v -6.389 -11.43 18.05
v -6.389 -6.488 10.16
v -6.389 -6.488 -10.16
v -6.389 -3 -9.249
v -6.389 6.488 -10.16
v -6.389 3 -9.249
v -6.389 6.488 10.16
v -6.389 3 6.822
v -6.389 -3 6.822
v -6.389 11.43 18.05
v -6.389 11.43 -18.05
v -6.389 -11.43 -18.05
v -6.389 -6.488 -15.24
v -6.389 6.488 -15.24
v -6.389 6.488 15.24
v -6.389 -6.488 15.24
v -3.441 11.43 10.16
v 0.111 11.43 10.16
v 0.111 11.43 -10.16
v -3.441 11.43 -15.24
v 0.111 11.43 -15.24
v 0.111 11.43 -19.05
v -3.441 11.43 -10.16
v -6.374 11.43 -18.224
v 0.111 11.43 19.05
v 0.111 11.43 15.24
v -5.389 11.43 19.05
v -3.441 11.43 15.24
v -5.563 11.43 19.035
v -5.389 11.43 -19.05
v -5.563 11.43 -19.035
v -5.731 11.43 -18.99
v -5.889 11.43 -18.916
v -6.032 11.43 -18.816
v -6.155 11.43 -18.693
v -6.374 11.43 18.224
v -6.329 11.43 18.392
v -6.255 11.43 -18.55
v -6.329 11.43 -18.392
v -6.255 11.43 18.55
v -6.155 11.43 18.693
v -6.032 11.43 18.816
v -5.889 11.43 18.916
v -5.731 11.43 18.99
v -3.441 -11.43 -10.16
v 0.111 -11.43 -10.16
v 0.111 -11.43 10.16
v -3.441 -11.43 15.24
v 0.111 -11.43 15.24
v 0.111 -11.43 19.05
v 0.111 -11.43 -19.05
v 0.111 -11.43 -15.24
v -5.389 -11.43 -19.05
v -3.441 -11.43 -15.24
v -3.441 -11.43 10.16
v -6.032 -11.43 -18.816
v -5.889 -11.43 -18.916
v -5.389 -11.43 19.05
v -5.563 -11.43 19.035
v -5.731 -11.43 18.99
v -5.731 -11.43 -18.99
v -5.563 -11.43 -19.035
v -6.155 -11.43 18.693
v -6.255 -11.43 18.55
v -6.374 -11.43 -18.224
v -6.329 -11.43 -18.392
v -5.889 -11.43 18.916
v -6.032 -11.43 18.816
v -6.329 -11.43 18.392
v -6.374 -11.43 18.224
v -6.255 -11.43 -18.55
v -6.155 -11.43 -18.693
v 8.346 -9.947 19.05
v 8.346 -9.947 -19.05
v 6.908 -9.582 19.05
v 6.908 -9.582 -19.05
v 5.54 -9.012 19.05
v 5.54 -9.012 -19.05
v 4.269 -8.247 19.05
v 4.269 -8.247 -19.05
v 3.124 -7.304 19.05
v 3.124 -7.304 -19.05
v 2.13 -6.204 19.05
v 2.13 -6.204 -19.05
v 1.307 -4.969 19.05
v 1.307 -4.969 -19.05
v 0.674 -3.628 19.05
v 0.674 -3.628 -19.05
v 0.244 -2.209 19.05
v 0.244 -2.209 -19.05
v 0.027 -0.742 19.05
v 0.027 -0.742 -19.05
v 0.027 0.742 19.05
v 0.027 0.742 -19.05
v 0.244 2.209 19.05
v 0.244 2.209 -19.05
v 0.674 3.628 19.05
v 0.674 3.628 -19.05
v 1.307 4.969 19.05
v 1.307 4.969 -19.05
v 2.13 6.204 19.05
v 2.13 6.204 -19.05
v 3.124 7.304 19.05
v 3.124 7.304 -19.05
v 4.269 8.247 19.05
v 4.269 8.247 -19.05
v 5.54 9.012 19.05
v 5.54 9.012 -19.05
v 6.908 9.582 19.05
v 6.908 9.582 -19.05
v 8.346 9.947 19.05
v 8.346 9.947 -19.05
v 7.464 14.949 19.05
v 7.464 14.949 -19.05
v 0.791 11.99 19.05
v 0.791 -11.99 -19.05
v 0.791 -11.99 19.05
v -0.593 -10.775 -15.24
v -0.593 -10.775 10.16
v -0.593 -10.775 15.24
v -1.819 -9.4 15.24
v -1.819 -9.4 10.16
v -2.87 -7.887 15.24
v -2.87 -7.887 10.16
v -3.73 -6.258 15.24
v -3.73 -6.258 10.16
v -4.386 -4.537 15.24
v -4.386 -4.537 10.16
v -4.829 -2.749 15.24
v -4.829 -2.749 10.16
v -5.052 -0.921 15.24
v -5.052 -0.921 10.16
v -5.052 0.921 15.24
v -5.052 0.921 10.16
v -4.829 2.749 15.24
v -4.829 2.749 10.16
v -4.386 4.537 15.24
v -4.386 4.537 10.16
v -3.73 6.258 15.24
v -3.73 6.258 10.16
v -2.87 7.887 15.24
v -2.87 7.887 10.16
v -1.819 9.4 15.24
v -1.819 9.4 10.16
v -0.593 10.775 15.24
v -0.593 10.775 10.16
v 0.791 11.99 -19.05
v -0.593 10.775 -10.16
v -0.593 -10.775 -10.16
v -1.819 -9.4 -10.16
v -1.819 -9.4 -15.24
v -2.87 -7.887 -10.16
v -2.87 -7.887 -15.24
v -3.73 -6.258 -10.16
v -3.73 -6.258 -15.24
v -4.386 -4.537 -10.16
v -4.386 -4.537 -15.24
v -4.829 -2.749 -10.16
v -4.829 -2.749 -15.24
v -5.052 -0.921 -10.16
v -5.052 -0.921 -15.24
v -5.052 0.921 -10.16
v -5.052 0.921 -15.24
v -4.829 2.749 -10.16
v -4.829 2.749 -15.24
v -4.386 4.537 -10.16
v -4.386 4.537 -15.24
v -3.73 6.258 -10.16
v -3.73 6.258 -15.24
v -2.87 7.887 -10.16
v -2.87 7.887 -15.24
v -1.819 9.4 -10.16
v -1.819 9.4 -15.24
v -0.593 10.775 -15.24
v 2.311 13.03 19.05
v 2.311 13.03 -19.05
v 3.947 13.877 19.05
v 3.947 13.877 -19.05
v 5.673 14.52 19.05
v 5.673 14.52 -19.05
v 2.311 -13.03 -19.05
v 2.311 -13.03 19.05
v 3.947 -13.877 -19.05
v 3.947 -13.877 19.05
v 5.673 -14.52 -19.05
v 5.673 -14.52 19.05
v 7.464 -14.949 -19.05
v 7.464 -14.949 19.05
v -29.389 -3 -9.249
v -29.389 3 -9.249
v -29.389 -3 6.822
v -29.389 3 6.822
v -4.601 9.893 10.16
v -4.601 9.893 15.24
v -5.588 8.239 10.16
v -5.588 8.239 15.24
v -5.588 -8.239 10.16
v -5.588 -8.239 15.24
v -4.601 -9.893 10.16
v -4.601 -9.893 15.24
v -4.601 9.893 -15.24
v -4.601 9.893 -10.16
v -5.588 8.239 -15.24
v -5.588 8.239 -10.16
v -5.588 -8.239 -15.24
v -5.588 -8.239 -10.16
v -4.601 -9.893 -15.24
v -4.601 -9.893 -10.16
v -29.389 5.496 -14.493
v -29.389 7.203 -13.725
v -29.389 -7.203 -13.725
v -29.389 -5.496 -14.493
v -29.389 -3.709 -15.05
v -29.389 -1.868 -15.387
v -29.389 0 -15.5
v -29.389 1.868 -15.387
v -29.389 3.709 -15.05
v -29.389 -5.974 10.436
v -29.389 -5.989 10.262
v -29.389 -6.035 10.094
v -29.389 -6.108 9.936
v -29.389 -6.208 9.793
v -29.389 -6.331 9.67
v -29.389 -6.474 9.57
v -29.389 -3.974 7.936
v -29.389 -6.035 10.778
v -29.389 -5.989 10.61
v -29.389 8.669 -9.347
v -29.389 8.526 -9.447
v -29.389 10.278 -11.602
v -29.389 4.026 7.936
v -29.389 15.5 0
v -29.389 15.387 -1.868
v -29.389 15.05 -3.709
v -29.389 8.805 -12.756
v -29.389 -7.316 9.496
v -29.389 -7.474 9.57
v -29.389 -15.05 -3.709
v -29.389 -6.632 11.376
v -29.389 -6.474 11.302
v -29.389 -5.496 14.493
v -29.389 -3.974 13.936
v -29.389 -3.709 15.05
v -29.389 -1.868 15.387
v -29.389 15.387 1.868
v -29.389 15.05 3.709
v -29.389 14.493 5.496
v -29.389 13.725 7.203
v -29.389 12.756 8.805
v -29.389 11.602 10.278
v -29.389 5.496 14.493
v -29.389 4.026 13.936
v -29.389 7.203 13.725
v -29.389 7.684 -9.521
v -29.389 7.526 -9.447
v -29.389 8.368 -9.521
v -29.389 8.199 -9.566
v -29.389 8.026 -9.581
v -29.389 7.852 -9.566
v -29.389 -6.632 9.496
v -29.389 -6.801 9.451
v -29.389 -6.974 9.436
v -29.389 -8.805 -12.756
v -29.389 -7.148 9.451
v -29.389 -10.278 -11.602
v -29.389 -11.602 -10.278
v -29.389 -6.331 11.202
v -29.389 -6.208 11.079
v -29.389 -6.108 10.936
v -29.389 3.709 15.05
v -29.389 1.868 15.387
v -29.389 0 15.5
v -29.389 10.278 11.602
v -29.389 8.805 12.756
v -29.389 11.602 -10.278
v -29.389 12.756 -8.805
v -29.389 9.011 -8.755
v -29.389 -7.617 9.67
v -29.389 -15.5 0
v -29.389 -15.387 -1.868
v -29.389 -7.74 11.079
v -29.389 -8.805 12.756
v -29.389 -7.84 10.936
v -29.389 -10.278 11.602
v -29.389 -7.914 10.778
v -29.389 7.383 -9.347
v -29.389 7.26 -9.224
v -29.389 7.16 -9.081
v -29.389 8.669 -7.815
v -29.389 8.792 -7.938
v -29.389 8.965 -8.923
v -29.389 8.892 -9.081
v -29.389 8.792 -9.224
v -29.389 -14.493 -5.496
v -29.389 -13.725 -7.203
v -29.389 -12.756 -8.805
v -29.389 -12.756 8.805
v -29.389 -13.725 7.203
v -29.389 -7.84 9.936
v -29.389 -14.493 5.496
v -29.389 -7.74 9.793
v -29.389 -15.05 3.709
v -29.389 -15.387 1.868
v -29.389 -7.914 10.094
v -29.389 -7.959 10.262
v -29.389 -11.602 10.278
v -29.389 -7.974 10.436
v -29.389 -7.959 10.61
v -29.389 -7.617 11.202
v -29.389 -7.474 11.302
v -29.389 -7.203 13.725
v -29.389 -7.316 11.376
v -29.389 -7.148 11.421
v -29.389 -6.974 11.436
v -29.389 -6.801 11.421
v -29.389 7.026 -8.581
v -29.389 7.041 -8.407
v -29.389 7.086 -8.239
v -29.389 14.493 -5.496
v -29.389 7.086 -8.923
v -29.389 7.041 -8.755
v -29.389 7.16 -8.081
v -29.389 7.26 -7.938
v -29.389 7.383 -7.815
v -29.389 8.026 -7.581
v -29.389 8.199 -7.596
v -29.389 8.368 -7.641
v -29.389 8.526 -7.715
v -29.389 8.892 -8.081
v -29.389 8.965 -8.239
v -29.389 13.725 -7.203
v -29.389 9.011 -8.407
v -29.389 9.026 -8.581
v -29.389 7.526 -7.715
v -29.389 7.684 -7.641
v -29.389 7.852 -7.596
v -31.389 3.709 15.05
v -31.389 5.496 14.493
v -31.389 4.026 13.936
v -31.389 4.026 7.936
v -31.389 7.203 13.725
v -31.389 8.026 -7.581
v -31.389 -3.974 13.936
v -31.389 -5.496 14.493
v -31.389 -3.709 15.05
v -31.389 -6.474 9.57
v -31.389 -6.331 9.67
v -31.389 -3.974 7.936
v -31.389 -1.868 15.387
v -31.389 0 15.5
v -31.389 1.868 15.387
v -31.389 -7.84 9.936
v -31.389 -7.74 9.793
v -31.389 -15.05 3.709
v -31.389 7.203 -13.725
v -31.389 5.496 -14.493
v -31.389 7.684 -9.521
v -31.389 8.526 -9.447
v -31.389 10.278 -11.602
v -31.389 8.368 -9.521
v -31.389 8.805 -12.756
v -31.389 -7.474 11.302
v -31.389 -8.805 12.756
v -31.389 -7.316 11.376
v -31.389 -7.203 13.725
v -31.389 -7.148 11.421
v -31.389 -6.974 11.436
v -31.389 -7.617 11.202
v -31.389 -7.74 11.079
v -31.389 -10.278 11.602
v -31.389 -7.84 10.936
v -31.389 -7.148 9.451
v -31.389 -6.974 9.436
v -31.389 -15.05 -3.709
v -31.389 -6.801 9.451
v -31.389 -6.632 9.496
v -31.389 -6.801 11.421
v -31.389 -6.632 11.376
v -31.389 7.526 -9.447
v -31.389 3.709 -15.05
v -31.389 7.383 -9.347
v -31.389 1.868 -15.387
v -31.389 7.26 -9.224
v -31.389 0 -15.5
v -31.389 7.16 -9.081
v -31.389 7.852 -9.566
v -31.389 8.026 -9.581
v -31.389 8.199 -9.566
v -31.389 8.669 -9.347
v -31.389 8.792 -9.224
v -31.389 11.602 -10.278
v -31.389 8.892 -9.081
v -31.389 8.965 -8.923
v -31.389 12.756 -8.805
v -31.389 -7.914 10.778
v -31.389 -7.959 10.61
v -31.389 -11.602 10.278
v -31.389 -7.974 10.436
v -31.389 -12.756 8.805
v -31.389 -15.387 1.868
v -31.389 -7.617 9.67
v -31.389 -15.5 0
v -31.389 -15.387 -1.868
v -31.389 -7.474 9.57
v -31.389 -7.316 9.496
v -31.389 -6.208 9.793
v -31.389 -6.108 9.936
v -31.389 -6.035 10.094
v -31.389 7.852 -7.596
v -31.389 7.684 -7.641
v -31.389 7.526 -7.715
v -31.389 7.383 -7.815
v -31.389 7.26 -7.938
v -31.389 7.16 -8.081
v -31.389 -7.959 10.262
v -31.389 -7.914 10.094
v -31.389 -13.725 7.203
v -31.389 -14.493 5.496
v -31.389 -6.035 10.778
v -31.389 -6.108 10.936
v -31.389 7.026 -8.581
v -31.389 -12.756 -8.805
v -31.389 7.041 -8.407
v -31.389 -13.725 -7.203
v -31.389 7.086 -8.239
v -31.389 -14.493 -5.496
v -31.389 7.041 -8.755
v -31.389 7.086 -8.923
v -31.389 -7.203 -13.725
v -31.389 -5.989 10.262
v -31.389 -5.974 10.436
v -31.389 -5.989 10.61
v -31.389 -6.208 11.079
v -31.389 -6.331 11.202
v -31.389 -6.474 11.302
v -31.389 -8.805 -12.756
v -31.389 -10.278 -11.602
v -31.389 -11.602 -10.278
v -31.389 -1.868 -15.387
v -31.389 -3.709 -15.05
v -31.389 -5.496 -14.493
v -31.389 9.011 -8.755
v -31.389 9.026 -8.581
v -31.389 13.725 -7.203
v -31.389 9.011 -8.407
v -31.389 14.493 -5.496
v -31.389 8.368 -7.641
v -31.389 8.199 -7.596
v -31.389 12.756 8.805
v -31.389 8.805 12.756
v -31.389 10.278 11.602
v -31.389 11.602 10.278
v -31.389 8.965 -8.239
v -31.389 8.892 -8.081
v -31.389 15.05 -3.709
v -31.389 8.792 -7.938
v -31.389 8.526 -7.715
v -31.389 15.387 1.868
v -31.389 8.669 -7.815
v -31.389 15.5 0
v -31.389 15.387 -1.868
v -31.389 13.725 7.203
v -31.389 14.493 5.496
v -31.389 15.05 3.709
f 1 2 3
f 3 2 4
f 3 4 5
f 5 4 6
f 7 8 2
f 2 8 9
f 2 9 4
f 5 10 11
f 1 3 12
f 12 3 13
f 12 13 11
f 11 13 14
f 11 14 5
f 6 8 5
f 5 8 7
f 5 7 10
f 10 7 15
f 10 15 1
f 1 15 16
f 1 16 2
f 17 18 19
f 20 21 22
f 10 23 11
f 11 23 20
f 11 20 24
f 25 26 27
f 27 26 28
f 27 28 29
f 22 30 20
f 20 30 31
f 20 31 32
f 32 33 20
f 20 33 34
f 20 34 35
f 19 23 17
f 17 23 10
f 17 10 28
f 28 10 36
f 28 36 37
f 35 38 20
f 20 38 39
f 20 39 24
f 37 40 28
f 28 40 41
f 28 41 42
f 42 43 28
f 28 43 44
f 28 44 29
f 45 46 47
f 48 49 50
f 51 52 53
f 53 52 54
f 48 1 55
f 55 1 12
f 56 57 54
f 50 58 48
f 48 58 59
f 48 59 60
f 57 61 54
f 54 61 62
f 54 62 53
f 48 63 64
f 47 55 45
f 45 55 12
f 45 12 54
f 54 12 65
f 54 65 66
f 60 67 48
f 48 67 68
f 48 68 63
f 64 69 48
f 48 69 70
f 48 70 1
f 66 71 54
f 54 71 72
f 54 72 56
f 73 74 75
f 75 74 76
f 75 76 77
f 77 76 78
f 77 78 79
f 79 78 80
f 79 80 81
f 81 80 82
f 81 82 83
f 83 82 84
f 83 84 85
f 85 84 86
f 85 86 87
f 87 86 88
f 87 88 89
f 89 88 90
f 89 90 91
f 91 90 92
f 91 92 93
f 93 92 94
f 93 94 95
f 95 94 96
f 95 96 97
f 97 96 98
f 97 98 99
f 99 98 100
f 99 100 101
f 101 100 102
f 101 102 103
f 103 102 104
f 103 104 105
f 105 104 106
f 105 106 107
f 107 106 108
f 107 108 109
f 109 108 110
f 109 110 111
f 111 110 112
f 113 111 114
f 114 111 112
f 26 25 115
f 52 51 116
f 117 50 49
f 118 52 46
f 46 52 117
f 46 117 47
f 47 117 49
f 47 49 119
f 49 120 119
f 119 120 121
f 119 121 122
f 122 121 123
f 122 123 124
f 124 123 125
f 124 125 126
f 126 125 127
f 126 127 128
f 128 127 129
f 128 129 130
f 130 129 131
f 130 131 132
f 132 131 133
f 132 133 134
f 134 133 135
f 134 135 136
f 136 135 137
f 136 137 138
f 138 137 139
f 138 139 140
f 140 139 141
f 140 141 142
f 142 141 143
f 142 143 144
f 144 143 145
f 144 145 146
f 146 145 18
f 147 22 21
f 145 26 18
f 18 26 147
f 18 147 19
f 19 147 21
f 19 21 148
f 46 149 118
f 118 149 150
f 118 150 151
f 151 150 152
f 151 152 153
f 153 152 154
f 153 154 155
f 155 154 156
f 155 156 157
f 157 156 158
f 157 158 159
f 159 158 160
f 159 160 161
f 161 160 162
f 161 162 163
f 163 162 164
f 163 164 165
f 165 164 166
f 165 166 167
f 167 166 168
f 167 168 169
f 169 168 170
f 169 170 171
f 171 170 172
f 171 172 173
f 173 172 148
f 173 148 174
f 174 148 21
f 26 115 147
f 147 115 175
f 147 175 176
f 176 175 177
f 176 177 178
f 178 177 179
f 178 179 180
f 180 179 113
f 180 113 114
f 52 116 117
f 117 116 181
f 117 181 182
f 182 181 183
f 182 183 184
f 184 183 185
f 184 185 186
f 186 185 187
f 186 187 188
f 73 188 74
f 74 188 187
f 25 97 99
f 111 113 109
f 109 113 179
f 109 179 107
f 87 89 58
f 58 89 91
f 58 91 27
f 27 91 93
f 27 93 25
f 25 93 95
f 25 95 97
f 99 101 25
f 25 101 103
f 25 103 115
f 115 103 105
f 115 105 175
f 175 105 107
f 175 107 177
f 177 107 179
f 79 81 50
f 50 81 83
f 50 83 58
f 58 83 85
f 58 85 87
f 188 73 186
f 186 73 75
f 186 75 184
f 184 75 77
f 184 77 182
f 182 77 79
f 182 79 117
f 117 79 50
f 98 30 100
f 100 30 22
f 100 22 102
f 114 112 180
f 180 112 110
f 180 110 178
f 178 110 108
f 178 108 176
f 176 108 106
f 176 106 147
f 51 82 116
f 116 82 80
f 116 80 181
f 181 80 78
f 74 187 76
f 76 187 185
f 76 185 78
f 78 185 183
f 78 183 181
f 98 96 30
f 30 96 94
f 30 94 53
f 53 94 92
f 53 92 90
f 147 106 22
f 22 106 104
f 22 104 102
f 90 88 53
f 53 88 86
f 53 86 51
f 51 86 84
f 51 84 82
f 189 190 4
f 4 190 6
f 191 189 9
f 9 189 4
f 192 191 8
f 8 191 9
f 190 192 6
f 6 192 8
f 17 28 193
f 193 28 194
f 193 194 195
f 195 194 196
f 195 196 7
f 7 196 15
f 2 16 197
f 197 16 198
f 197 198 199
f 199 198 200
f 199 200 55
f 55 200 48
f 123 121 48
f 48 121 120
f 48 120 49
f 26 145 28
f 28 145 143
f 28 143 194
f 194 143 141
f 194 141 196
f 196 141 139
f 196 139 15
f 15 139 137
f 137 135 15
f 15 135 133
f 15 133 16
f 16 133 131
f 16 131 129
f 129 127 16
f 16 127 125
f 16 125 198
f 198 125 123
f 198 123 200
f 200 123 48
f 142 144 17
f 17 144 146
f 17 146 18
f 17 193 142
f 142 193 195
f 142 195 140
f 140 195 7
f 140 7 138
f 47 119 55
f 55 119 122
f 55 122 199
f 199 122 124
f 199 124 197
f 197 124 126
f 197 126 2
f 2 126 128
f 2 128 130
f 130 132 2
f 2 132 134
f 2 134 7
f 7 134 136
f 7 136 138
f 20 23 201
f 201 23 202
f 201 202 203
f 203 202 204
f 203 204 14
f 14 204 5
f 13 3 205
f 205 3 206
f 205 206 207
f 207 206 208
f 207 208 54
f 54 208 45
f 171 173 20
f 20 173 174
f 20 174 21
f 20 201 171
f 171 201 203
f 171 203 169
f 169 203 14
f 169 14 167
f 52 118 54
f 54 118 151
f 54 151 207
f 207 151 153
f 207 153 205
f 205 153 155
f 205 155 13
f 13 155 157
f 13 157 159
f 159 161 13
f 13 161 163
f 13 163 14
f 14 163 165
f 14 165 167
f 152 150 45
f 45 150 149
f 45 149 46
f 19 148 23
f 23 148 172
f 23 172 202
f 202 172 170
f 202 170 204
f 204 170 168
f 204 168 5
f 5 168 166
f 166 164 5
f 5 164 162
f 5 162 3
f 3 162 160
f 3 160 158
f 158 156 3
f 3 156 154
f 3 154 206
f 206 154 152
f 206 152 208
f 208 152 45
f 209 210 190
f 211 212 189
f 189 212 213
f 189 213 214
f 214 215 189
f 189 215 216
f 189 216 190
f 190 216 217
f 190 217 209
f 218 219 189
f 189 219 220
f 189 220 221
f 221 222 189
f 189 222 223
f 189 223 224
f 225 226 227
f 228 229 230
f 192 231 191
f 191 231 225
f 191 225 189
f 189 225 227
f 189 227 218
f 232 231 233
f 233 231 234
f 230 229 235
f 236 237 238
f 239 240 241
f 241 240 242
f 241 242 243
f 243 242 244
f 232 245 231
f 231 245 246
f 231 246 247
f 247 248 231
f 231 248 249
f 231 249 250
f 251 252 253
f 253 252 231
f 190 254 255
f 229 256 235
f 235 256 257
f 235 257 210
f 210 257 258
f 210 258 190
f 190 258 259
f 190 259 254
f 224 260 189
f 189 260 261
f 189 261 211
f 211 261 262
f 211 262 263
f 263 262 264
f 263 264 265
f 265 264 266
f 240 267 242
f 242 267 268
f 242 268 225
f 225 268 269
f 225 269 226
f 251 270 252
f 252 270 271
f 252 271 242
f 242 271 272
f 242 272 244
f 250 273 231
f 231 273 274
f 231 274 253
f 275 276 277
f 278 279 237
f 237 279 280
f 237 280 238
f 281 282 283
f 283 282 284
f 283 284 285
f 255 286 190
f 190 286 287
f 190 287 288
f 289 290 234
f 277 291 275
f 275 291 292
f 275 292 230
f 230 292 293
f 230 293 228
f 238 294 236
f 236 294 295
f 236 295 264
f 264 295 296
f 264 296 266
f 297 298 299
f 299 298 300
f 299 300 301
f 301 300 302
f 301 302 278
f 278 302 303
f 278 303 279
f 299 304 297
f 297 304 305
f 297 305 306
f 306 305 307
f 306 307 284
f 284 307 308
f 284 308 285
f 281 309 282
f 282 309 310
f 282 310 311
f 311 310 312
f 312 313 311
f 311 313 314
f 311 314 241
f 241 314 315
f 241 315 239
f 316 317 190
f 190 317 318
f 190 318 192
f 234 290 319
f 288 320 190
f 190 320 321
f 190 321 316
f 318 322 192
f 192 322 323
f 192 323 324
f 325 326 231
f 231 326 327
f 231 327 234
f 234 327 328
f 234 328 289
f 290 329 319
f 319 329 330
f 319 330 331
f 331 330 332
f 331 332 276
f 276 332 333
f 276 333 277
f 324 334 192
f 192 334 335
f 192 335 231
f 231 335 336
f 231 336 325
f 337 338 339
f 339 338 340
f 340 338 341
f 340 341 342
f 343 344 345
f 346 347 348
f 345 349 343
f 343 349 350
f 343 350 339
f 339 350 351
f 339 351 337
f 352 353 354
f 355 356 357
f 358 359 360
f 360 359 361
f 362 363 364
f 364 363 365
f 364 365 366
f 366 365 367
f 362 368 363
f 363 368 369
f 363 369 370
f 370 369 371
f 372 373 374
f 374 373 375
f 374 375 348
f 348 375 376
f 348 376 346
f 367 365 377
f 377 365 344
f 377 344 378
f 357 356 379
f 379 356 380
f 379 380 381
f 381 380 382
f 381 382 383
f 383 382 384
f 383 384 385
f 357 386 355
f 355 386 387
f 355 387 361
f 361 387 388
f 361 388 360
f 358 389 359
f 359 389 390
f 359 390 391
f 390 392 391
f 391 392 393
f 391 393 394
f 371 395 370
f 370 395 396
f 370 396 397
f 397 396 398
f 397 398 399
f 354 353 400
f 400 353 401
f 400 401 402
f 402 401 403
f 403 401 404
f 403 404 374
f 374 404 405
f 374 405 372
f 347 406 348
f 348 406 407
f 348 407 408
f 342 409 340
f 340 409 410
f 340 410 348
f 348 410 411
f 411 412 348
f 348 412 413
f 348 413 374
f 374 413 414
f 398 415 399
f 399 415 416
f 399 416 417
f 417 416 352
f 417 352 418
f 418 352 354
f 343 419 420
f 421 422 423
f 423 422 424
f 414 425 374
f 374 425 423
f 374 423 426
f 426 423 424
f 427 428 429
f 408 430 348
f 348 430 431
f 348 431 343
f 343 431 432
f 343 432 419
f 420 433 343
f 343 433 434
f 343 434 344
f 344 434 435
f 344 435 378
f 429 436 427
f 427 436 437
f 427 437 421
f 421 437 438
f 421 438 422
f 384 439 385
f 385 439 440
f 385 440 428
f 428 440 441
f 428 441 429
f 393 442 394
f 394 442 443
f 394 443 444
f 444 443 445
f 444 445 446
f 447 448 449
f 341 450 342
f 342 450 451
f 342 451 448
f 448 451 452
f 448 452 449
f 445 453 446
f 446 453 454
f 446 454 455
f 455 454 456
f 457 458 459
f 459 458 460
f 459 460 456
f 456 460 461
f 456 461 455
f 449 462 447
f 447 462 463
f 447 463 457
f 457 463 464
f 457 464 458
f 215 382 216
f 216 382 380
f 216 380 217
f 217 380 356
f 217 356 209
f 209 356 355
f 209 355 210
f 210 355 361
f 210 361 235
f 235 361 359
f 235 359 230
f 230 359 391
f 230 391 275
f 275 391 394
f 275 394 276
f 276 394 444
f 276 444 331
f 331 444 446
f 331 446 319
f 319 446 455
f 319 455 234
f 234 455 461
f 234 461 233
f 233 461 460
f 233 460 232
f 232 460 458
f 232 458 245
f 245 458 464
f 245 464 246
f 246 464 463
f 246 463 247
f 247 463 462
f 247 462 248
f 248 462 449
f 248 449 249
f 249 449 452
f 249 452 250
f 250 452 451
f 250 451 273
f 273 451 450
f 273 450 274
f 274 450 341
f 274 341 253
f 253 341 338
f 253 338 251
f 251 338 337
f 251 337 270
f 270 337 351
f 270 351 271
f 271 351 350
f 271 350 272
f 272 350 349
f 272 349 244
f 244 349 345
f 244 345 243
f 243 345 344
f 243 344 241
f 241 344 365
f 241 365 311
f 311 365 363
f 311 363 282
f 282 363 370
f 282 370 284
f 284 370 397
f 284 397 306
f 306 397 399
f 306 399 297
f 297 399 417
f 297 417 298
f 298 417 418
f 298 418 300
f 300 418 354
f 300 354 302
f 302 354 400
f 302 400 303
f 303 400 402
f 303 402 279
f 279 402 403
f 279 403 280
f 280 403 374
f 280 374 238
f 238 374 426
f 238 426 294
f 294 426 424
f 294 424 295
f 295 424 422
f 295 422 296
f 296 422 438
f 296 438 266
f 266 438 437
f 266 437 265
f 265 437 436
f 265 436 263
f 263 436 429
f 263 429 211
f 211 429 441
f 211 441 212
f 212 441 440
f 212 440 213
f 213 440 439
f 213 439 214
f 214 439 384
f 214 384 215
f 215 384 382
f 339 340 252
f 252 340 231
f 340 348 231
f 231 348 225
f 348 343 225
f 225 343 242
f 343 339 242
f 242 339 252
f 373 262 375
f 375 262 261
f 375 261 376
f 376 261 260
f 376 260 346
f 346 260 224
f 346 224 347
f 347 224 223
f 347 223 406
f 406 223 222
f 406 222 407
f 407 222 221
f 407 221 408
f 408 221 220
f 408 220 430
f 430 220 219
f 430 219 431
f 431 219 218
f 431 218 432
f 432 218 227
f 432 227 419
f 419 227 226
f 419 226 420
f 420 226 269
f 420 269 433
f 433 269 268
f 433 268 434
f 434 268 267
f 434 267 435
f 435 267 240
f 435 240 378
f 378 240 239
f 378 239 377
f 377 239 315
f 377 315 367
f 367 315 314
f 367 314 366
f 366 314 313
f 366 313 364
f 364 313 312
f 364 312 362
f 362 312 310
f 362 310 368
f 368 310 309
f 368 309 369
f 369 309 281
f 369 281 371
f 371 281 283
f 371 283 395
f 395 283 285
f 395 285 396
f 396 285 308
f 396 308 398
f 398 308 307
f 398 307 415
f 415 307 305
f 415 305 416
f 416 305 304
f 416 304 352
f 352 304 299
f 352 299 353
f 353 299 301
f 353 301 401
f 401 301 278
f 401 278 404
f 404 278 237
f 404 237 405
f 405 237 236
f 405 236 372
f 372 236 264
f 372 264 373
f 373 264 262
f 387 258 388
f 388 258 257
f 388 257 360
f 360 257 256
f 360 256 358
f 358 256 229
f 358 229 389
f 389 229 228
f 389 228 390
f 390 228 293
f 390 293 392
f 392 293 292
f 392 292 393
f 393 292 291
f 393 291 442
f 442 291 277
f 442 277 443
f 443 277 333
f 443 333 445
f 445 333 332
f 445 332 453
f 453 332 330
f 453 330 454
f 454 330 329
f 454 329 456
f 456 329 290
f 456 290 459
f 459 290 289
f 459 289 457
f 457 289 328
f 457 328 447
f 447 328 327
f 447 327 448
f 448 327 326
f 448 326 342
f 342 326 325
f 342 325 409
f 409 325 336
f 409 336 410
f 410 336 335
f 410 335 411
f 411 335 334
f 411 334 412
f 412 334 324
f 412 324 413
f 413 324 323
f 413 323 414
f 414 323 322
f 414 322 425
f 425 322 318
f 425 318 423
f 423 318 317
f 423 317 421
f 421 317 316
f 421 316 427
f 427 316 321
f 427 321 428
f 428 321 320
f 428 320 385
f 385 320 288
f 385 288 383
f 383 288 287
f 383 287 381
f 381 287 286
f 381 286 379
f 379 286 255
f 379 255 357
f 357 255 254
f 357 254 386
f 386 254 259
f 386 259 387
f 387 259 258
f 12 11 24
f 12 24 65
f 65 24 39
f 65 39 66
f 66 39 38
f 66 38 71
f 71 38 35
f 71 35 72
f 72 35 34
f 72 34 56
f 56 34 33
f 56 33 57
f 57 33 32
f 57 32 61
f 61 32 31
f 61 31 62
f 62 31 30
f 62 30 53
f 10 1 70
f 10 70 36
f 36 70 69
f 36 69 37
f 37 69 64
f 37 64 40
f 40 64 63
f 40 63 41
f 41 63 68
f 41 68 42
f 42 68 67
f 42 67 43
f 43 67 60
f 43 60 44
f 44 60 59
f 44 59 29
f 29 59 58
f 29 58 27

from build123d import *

# Parameters (mm, degrees)
BOSS_EXTRUDE1_DEPTH = 19.05
SKETCH6_W           = 16.071399664
SKETCH6_H           = 6
BOSS_EXTRUDE3_DEPTH = 23
SKETCH3_W           = 2.54
SKETCH3_H           = 5.08
SKETCH4_R           = 15.5
SKETCH4_R_2         = 1
SKETCH4_W           = 8
SKETCH4_H           = 6
BOSS_EXTRUDE2_DEPTH = 2
FILLET1_R           = 1


with BuildPart() as part:
    # Sketch1 → Boss-Extrude1 (new body, symmetric)
    with BuildSketch(Plane.XY):
        with BuildLine():
            Line((8.346153406, -9.946558305), (7.464020663, -14.949381691))
            ThreePointArc((7.464020663, -14.949381691), (3.546652059, -13.692553844), (0.110630651, -11.43))
            Line((0.110630651, -11.43), (-6.389369349, -11.43))
            Line((-6.389369349, -11.43), (-6.389369349, 11.43))
            Line((-6.389369349, 11.43), (0.110630651, 11.43))
            ThreePointArc((0.110630651, 11.43), (3.546652059, 13.692553844), (7.464020663, 14.949381691))
            Line((7.464020663, 14.949381691), (8.346153406, 9.946558305))
            ThreePointArc((8.346153406, 9.946558305), (0, 0), (8.346153406, -9.946558305))
        make_face()
    extrude(amount=BOSS_EXTRUDE1_DEPTH, both=True)

    # Sketch6 → Boss-Extrude3 (add)
    with BuildSketch(Plane.ZY.offset(6.389369349)):
        with Locations((-1.213689559, 0)):
            Rectangle(SKETCH6_W, SKETCH6_H)
    extrude(amount=BOSS_EXTRUDE3_DEPTH)

    # Sketch3 → Cut-Revolve1 (revolve, cut)
    with BuildSketch(Plane(origin=(0, 0, 0), x_dir=(1, 0, 0), z_dir=(0, 1, 0))):
        with Locations((-6.35, 12.7)):
            Rectangle(SKETCH3_W, SKETCH3_H)
        with Locations((-6.35, -12.7)):
            Rectangle(SKETCH3_W, SKETCH3_H)
    revolve(axis=Axis((10.1, 0, 19.05), (0, 0, -1)), mode=Mode.SUBTRACT)

    # Sketch4 → Boss-Extrude2 (add)
    with BuildSketch(Plane(origin=(-29.389369349, 0, 0), x_dir=(0, -1, 0), z_dir=(-1, 0, 0))):
        Circle(SKETCH4_R)
        with Locations((6.97426488, 10.435972737)):
            Circle(SKETCH4_R_2, mode=Mode.SUBTRACT)
        with Locations((-8.02573512, -8.580948715)):
            Circle(SKETCH4_R_2, mode=Mode.SUBTRACT)
        with Locations((-0.025715642, 10.93618237)):
            Rectangle(SKETCH4_W, SKETCH4_H, mode=Mode.SUBTRACT)
    extrude(amount=BOSS_EXTRUDE2_DEPTH)

    # Fillet1
    fillet1_edges = [part.edges().sort_by_distance(p)[0] for p in [
        (-6.389369349, 0, 19.05),
        (-6.389369349, 0, -19.05),
    ]]
    fillet(fillet1_edges, radius=FILLET1_R)


solid = part.part
